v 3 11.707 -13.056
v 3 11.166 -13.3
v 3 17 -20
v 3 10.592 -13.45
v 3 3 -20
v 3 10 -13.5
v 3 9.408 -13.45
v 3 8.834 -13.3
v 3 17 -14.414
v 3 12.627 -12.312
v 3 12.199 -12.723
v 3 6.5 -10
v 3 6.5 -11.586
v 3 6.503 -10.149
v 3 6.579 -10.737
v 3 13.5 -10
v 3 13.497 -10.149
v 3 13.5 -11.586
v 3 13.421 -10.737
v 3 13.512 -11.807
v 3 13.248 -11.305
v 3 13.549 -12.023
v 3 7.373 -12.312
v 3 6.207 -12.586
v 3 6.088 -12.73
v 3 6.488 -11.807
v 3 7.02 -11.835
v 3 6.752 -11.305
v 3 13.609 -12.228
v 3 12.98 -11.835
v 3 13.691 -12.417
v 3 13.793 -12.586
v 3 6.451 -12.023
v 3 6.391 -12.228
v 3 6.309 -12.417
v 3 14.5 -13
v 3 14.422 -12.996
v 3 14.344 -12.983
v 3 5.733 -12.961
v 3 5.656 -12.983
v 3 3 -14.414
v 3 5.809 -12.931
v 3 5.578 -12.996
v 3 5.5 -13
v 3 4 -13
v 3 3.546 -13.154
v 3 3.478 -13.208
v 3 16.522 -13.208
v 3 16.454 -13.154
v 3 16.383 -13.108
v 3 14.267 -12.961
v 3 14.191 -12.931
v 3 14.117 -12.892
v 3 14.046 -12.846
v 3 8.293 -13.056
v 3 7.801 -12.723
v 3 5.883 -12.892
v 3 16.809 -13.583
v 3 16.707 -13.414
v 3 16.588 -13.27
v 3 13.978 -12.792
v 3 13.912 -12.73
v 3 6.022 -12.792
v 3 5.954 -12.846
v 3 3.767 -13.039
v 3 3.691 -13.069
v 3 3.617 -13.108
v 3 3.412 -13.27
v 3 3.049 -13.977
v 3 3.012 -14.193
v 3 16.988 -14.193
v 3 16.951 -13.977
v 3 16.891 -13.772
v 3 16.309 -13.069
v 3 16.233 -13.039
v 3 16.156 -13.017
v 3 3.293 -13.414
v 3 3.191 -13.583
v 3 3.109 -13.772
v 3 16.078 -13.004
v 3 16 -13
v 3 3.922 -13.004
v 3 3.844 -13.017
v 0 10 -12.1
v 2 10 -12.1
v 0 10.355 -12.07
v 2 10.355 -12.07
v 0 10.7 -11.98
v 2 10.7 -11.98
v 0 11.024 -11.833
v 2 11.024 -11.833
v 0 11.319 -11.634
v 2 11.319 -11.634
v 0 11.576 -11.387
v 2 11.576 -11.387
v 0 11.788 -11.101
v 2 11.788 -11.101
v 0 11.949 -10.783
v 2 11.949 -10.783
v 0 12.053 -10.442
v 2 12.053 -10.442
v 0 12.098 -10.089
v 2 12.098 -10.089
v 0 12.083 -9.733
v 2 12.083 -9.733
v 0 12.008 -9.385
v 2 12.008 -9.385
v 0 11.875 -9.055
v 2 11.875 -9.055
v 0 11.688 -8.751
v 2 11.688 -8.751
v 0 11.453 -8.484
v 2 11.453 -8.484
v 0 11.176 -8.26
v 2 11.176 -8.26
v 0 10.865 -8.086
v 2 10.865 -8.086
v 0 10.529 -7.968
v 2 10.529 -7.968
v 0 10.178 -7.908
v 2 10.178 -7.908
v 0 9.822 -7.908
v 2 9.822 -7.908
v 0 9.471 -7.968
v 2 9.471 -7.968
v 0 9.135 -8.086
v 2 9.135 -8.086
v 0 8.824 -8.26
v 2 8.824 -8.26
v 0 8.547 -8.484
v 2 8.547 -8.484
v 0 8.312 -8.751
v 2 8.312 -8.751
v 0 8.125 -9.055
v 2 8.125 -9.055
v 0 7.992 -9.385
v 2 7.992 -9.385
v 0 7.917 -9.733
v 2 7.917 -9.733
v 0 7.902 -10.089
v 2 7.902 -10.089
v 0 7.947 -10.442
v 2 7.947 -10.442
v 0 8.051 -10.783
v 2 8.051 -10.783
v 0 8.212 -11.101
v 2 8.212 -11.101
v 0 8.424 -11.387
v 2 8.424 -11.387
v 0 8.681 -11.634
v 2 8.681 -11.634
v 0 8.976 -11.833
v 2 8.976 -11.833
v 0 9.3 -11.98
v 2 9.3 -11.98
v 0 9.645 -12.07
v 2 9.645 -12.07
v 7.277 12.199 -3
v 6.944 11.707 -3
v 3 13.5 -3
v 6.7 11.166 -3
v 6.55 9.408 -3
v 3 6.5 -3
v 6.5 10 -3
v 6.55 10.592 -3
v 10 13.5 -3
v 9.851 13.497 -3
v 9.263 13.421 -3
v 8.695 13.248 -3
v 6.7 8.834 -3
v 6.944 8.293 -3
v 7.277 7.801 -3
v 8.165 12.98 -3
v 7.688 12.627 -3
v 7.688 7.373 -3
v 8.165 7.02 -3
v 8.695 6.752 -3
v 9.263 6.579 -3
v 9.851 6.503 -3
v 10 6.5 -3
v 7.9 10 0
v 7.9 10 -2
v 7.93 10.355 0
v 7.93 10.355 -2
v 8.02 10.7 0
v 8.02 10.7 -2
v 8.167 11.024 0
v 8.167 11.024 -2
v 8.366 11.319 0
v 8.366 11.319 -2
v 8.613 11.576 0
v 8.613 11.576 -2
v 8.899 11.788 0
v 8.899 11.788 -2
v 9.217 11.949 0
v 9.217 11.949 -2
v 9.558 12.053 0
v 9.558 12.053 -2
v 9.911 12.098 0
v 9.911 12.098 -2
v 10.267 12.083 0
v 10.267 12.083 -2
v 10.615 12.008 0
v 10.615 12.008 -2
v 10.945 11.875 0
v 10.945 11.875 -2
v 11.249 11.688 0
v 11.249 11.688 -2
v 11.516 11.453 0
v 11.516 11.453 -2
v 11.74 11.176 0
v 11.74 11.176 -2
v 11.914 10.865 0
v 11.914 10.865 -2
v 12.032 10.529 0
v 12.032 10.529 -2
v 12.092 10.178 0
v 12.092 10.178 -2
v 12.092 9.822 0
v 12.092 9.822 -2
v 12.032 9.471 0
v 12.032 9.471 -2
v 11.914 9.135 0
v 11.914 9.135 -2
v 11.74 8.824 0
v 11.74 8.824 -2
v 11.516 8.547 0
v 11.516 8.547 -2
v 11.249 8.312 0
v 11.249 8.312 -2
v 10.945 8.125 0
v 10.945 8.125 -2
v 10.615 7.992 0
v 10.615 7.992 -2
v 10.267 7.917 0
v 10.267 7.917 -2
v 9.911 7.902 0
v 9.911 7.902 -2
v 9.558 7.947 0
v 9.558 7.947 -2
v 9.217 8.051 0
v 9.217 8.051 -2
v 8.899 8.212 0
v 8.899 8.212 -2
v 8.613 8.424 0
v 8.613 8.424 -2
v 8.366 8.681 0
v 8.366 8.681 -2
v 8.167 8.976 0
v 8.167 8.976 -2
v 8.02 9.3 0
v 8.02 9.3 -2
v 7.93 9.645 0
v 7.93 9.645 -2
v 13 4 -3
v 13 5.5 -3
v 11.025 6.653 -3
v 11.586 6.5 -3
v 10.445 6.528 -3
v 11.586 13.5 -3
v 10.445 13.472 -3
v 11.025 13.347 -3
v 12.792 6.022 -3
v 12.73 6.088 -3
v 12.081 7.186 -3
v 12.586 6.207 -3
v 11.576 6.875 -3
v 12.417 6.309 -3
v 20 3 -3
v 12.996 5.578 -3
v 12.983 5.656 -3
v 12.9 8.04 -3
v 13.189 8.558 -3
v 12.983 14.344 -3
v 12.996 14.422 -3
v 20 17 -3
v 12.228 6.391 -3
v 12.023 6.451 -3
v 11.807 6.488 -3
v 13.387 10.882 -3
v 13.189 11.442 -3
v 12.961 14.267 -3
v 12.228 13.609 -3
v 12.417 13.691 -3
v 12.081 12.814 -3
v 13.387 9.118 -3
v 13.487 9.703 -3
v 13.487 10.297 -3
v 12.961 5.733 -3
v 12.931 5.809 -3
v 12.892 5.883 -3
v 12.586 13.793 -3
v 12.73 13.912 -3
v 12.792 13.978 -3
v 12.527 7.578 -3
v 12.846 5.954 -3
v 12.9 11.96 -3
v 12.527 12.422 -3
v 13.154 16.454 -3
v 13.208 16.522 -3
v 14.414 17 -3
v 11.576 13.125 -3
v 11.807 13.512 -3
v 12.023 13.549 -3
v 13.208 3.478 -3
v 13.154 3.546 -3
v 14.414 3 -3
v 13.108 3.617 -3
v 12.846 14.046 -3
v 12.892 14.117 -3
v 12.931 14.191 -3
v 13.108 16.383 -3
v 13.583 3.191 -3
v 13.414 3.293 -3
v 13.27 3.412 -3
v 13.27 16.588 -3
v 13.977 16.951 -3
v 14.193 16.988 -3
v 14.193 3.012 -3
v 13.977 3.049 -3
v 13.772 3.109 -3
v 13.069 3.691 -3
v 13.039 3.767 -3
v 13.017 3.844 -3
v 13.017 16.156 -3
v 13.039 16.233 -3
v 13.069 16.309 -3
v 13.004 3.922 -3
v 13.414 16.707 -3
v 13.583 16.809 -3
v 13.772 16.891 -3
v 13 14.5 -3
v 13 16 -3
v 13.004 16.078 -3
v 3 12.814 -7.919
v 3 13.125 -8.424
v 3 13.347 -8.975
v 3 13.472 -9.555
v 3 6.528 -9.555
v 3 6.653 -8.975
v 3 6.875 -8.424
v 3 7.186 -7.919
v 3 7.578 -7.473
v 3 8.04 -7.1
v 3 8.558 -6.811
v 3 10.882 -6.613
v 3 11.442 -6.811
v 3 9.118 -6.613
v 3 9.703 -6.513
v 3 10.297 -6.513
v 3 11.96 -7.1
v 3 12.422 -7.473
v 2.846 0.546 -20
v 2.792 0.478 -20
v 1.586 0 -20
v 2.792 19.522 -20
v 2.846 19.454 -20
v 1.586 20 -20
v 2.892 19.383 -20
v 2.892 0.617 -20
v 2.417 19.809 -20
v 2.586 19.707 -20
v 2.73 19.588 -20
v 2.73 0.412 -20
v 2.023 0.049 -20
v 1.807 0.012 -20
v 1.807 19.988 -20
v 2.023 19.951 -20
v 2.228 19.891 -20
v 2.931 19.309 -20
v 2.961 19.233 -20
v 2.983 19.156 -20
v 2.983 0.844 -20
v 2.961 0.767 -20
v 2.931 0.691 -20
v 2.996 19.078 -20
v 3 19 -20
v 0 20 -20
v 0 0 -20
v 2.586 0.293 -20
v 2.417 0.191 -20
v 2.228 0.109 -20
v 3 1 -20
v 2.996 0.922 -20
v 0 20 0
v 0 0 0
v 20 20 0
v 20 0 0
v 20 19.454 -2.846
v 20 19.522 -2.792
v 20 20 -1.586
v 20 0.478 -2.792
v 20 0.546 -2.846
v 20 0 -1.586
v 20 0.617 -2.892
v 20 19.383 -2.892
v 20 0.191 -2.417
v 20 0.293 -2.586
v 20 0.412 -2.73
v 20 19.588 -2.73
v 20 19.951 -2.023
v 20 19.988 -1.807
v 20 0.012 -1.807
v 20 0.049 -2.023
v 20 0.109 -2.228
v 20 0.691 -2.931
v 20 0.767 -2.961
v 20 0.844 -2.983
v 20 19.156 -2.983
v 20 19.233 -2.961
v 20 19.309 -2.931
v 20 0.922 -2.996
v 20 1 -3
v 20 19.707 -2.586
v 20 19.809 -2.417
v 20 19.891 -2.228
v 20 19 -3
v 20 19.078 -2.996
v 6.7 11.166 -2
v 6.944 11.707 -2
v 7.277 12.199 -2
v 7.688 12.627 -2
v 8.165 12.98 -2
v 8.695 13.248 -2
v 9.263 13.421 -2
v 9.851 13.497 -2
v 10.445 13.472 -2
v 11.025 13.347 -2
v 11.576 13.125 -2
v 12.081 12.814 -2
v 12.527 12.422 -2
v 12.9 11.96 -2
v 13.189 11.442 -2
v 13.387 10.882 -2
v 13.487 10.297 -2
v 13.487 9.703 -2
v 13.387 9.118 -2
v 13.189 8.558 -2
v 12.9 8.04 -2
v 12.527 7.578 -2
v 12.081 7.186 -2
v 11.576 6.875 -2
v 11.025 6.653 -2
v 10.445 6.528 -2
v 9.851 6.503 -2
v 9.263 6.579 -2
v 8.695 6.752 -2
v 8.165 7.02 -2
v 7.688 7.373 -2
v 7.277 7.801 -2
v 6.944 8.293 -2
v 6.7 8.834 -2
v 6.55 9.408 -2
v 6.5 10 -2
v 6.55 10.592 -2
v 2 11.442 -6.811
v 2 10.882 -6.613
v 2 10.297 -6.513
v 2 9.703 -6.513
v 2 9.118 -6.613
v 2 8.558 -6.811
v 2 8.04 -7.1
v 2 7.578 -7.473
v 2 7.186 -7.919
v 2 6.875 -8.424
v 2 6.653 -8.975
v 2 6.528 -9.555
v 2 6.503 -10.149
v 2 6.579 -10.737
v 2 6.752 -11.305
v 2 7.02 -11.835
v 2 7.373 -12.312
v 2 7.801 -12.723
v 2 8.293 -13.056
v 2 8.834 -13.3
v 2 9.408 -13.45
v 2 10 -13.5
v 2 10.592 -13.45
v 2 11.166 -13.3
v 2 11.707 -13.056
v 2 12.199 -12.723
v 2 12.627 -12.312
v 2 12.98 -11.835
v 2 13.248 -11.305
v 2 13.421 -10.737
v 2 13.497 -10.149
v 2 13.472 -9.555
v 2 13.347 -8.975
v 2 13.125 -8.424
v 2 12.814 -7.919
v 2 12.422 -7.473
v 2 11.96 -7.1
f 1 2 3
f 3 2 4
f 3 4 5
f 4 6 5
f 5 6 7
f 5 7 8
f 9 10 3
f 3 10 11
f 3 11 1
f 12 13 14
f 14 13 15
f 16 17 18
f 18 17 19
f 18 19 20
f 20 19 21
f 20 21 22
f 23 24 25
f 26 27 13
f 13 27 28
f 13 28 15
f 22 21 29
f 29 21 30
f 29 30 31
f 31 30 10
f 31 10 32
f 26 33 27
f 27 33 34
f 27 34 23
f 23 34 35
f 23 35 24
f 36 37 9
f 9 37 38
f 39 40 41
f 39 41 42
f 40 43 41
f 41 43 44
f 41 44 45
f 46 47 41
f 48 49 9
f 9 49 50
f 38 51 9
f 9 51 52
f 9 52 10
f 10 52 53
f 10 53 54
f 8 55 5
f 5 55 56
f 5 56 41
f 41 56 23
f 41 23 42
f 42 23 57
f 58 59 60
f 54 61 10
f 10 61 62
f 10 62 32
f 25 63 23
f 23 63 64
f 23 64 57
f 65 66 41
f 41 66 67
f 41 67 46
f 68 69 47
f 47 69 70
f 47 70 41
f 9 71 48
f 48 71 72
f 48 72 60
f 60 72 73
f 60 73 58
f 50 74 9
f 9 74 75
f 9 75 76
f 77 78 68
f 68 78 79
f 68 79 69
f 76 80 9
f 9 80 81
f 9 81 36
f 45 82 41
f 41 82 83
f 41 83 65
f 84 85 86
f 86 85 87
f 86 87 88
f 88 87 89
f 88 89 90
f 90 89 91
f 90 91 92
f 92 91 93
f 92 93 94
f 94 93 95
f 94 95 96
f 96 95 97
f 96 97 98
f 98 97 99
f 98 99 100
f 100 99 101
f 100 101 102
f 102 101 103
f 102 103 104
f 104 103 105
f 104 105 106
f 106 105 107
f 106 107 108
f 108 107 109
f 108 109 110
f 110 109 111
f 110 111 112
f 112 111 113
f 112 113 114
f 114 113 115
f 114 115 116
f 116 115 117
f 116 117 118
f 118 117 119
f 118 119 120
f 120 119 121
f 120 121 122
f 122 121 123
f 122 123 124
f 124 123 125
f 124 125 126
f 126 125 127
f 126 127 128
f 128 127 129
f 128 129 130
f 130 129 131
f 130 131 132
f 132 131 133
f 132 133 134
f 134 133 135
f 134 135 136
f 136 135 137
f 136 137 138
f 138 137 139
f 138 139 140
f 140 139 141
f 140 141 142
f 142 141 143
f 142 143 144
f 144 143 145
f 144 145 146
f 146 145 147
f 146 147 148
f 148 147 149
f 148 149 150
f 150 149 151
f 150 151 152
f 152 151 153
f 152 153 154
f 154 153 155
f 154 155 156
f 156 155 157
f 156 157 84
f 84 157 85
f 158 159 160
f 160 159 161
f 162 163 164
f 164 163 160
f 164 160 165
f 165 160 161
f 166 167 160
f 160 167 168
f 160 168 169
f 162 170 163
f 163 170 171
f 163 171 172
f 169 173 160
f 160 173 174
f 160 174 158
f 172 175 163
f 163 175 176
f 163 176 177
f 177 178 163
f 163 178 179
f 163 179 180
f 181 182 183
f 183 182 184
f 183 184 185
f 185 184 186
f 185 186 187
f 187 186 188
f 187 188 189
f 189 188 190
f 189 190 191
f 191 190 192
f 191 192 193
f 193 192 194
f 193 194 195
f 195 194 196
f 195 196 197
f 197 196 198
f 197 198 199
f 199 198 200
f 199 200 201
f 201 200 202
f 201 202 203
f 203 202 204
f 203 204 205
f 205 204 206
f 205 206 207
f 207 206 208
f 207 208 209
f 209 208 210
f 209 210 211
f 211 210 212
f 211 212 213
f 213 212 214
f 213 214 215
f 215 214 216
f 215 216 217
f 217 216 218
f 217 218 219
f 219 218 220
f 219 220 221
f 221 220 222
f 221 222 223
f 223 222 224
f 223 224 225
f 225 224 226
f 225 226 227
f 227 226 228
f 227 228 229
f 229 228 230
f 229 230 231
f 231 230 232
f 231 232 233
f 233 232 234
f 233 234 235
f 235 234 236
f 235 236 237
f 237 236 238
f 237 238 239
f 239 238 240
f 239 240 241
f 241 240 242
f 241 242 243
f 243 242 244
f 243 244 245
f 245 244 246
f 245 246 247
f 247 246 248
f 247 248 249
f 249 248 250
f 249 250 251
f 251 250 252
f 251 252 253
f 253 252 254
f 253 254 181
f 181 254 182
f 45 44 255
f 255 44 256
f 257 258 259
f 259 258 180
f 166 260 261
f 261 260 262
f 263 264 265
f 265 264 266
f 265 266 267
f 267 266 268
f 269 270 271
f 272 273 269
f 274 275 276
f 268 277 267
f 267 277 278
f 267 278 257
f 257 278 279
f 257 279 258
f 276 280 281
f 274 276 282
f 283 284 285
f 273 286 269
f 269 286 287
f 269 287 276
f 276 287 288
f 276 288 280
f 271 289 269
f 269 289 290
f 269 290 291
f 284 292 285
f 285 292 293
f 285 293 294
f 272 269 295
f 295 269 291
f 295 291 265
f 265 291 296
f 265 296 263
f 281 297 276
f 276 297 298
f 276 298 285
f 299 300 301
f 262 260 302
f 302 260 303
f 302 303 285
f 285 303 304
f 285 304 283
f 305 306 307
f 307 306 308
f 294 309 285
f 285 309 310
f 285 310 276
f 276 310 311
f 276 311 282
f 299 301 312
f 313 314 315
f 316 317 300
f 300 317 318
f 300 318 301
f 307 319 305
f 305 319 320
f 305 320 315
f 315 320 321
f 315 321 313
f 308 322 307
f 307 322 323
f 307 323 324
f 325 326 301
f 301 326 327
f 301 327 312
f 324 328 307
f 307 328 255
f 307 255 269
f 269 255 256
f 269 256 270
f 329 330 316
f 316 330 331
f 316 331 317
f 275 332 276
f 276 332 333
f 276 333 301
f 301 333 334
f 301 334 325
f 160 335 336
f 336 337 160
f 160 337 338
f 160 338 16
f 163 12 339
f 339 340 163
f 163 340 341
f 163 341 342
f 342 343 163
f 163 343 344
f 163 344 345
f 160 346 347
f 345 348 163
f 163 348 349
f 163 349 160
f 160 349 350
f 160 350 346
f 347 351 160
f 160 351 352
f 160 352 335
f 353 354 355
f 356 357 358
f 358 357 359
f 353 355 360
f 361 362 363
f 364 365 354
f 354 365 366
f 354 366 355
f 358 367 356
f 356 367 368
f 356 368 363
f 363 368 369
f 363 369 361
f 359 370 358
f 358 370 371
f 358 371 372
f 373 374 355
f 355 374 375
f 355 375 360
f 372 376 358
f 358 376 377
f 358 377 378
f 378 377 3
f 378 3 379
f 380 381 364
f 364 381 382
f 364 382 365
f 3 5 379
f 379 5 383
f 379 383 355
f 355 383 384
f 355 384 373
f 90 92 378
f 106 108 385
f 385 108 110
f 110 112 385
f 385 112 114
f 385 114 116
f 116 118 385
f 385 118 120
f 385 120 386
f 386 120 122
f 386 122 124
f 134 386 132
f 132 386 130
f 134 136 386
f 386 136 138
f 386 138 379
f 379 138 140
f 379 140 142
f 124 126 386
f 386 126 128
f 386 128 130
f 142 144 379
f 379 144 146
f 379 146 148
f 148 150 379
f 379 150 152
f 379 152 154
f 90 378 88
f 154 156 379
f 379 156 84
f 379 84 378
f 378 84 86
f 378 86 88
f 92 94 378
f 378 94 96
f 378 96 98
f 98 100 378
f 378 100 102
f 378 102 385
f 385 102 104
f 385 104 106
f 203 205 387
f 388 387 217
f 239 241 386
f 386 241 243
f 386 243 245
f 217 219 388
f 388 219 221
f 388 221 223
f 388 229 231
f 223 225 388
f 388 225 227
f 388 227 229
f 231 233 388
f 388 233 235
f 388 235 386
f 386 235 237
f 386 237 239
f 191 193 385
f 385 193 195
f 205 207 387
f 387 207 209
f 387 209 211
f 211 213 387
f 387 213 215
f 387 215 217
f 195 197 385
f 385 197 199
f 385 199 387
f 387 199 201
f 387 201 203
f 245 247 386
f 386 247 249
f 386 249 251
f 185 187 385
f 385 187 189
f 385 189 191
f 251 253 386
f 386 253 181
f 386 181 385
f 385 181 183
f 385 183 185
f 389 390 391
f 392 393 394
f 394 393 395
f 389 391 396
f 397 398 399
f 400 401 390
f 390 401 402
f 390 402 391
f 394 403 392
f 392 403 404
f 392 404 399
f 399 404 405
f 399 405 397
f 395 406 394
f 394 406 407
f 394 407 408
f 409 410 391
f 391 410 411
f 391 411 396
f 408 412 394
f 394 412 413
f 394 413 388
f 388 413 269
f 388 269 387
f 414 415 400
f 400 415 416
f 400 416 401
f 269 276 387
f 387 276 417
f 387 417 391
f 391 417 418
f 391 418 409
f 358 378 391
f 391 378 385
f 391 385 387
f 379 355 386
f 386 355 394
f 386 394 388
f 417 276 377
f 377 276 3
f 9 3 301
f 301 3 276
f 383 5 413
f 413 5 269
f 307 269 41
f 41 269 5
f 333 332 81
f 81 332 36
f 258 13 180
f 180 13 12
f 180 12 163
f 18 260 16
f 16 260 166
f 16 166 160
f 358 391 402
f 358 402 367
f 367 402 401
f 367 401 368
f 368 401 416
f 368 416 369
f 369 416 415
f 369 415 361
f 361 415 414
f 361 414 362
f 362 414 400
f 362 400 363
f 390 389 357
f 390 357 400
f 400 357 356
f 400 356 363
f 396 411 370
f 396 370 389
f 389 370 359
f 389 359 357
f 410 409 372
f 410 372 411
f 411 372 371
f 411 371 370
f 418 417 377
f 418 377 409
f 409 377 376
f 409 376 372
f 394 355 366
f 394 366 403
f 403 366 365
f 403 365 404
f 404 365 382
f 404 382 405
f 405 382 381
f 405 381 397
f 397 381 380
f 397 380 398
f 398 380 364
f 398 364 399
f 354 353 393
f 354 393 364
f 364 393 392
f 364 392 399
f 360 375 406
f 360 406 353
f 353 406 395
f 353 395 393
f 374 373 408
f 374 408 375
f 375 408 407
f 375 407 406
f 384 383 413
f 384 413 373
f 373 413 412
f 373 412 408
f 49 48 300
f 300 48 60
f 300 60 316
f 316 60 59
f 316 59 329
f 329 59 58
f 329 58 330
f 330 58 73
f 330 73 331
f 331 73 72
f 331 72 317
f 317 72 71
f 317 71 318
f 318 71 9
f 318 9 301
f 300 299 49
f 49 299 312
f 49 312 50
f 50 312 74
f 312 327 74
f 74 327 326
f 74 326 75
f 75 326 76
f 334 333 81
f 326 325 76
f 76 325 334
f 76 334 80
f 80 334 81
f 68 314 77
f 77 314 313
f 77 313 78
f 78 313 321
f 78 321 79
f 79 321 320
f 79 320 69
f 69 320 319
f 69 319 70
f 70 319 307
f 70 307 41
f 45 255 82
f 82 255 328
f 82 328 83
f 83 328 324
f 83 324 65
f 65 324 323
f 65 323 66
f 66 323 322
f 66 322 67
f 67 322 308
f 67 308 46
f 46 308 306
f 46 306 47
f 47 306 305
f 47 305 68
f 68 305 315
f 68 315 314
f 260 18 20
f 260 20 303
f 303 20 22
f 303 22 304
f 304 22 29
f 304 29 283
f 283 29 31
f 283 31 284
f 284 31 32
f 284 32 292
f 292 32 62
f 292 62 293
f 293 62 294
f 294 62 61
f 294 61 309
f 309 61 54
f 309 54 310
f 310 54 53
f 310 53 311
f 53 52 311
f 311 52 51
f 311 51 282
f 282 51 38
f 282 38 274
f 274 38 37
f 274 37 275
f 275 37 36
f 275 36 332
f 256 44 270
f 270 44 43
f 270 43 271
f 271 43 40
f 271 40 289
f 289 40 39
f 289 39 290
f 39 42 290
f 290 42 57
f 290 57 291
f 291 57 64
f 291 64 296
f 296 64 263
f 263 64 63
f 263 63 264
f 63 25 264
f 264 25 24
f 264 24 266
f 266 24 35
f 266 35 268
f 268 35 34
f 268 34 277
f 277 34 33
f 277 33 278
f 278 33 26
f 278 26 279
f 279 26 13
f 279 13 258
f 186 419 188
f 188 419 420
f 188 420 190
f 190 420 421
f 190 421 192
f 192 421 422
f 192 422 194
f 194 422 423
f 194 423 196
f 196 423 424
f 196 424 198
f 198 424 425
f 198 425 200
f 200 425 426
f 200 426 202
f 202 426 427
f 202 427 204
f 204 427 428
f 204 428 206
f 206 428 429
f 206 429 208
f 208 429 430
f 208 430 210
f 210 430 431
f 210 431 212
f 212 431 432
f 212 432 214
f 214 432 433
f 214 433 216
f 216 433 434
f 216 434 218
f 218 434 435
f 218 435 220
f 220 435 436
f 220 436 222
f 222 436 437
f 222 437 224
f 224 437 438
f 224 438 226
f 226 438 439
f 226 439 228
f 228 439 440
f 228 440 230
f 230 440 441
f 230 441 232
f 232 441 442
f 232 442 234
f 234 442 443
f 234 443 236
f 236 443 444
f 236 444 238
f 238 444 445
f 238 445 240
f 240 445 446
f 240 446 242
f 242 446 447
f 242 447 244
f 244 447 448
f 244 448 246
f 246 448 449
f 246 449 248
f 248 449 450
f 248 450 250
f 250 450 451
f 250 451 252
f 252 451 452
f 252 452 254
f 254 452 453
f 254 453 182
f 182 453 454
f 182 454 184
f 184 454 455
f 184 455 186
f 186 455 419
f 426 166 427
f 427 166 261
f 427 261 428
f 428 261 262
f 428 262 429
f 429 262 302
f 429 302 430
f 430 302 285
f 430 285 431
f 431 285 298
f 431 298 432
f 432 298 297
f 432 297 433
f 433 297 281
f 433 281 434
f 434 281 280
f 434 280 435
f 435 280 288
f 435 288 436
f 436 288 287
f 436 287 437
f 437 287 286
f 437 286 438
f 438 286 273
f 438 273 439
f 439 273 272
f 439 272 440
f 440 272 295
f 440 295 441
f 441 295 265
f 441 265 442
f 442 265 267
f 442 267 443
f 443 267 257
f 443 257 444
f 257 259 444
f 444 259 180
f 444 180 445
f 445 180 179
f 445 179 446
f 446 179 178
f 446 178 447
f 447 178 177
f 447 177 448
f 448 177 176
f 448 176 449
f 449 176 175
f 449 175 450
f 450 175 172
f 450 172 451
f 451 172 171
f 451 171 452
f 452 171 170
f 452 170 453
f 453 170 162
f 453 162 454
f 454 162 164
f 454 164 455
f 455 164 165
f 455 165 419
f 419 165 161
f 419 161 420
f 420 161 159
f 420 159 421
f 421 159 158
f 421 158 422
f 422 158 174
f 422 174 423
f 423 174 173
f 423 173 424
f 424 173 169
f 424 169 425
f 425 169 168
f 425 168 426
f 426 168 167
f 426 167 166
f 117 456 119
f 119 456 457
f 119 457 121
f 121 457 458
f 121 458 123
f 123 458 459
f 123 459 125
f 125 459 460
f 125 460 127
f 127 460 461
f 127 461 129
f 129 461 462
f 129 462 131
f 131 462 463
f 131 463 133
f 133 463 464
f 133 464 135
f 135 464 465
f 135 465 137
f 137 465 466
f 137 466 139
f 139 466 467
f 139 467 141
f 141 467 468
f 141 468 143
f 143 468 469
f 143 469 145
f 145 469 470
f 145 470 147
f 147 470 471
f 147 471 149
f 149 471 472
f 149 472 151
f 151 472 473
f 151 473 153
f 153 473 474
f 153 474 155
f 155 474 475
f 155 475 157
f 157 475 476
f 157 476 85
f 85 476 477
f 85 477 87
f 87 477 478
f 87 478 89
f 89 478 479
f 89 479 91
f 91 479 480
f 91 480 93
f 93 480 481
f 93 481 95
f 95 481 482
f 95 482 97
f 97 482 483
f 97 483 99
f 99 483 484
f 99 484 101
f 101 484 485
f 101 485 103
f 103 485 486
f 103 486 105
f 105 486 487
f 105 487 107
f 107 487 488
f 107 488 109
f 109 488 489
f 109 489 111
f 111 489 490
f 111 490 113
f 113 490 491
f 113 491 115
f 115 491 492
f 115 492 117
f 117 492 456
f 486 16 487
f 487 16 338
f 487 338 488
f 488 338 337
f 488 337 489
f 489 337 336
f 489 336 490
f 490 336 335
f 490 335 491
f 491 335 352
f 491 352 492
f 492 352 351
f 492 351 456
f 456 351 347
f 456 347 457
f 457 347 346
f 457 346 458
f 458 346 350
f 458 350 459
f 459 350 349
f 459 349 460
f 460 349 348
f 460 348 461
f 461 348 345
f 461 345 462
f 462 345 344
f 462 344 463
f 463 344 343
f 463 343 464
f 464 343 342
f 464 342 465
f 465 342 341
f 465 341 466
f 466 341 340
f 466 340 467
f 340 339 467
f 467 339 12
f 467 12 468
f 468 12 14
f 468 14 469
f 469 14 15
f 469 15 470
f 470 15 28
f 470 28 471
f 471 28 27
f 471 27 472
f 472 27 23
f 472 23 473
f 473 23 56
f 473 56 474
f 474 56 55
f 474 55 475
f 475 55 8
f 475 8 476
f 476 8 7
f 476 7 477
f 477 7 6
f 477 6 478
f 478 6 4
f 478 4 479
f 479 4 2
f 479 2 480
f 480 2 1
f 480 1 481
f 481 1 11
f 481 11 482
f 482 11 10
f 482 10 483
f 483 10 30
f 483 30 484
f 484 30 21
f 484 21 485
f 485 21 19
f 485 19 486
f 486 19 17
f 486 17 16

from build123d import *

# Parameters (mm, degrees)
EXTRUDE_1_DEPTH     = 20
EXTRUDE_2_DEPTH     = 3
EXTRUDE_3_DEPTH     = 3
CHAMFER_1_SIZE      = 10
SKETCH_4_R          = 2.1
CUT_EXTRUDE_1_DEPTH = 3
CUT_EXTRUDE_2_DEPTH = 10
FILLET_1_R          = 1
SKETCH_6_R          = 2.1
CUT_EXTRUDE_3_DEPTH = 10
SKETCH_7_R          = 3.5
CUT_EXTRUDE_4_DEPTH = 10
SKETCH_8_W          = 10
SKETCH_8_H          = 10
CUT_EXTRUDE_5_DEPTH = 7
FILLET_2_R          = 1
SKETCH_9_R          = 3.5
CUT_EXTRUDE_6_DEPTH = 1
SKETCH_10_R         = 3.5
CUT_EXTRUDE_7_DEPTH = 1


with BuildPart() as part:
    # 草图1 → 凸台-拉伸1 (new body)
    with BuildSketch(Plane(origin=(0, 0, 0), x_dir=(1, 0, 0), z_dir=(0, 1, 0))):
        Polygon((0, 20), (0, 0), (20, 0), (20, 3), (3, 3), (3, 20), align=None)
    extrude(amount=EXTRUDE_1_DEPTH)

    # 草图2 → 凸台-拉伸2 (add)
    with BuildSketch(Plane(origin=(0, 20, 0), x_dir=(1, 0, 0), z_dir=(0, 1, 0))):
        Polygon((3, 20), (20, 3), (3, 3), align=None)
    extrude(amount=-EXTRUDE_2_DEPTH)

    # 草图3 → 凸台-拉伸3 (add)
    with BuildSketch(Plane.XZ):
        Polygon((20, -3), (3, -20), (3, -3), align=None)
    extrude(amount=-EXTRUDE_3_DEPTH)

    # 倒角1
    chamfer_1_edges = [part.edges().sort_by_distance(p)[0] for p in [
        (3, 10, -3),
    ]]
    chamfer(chamfer_1_edges, length=CHAMFER_1_SIZE)

    # 草图4 → 切除-拉伸1 (cut)
    with BuildSketch(Plane(origin=(0, 0, -3), x_dir=(-1, 0, 0), z_dir=(0, 0, -1))):
        with Locations((-10, 10)):
            Circle(SKETCH_4_R)
    extrude(amount=-CUT_EXTRUDE_1_DEPTH, mode=Mode.SUBTRACT)

    # 草图5 → 切除-拉伸2 (cut)
    with BuildSketch(Plane(origin=(0, 0, -3), x_dir=(-1, 0, 0), z_dir=(0, 0, -1))):
        with BuildLine():
            Line((-10, 13.5), (-13, 13.5))
            Line((-13, 13.5), (-13, 6.5))
            Line((-13, 6.5), (-10, 6.5))
            ThreePointArc((-10, 6.5), (-6.5, 10), (-10, 13.5))
        make_face()
    extrude(amount=CUT_EXTRUDE_2_DEPTH, mode=Mode.SUBTRACT)

    # 圆角1
    fillet_1_edges = [part.edges().sort_by_distance(p)[0] for p in [
        (11.5, 20, -11.5),
        (11.5, 0, -11.5),
    ]]
    fillet(fillet_1_edges, radius=FILLET_1_R)

    # 草图6 → 切除-拉伸3 (cut)
    with BuildSketch(Plane(origin=(3, 0, 0), x_dir=(0, 0, -1), z_dir=(1, 0, 0))):
        with Locations((10, 10)):
            Circle(SKETCH_6_R)
    extrude(amount=-CUT_EXTRUDE_3_DEPTH, mode=Mode.SUBTRACT)

    # 草图7 → 切除-拉伸4 (cut)
    with BuildSketch(Plane.ZY.offset(-3)):
        with Locations((-10, 10)):
            Circle(SKETCH_7_R)
    extrude(amount=-CUT_EXTRUDE_4_DEPTH, mode=Mode.SUBTRACT)

    # 草图8 → 切除-拉伸5 (cut)
    with BuildSketch(Plane.XZ.offset(-13.5)):
        with Locations((8, -8)):
            Rectangle(SKETCH_8_W, SKETCH_8_H)
    extrude(amount=CUT_EXTRUDE_5_DEPTH, mode=Mode.SUBTRACT)

    # 圆角2
    fillet_2_edges = [part.edges().sort_by_distance(p)[0] for p in [
        (8, 3, -8),
        (8, 17, -8),
        (8, 13.5, -8),
        (8, 6.5, -8),
    ]]
    fillet(fillet_2_edges, radius=FILLET_2_R)

    # 草图9 → 切除-拉伸6 (cut)
    with BuildSketch(Plane(origin=(0, 0, -3), x_dir=(-1, 0, 0), z_dir=(0, 0, -1))):
        with Locations((-10, 10)):
            Circle(SKETCH_9_R)
    extrude(amount=-CUT_EXTRUDE_6_DEPTH, mode=Mode.SUBTRACT)

    # 草图10 → 切除-拉伸7 (cut)
    with BuildSketch(Plane(origin=(3, 0, 0), x_dir=(0, 0, -1), z_dir=(1, 0, 0))):
        with Locations((10, 10)):
            Circle(SKETCH_10_R)
    extrude(amount=-CUT_EXTRUDE_7_DEPTH, mode=Mode.SUBTRACT)


solid = part.part
